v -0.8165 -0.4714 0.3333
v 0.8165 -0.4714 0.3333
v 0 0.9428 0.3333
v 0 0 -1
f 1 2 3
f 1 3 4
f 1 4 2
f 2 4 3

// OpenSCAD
polyhedron( points = [[-0.816496580932821, -0.471404520793973, 0.333333333316693], [0.816496580869328, -0.471404520793973, 0.333333333316693], [1.05822215280804e-11, 6.10903967191825e-12, -0.999999999950079], [5.29109263417412e-11, 0.942809041581838, 0.333333333316693]], faces = [[0, 1, 3], [0, 3, 2], [0, 2, 1], [1, 2, 3]]);
